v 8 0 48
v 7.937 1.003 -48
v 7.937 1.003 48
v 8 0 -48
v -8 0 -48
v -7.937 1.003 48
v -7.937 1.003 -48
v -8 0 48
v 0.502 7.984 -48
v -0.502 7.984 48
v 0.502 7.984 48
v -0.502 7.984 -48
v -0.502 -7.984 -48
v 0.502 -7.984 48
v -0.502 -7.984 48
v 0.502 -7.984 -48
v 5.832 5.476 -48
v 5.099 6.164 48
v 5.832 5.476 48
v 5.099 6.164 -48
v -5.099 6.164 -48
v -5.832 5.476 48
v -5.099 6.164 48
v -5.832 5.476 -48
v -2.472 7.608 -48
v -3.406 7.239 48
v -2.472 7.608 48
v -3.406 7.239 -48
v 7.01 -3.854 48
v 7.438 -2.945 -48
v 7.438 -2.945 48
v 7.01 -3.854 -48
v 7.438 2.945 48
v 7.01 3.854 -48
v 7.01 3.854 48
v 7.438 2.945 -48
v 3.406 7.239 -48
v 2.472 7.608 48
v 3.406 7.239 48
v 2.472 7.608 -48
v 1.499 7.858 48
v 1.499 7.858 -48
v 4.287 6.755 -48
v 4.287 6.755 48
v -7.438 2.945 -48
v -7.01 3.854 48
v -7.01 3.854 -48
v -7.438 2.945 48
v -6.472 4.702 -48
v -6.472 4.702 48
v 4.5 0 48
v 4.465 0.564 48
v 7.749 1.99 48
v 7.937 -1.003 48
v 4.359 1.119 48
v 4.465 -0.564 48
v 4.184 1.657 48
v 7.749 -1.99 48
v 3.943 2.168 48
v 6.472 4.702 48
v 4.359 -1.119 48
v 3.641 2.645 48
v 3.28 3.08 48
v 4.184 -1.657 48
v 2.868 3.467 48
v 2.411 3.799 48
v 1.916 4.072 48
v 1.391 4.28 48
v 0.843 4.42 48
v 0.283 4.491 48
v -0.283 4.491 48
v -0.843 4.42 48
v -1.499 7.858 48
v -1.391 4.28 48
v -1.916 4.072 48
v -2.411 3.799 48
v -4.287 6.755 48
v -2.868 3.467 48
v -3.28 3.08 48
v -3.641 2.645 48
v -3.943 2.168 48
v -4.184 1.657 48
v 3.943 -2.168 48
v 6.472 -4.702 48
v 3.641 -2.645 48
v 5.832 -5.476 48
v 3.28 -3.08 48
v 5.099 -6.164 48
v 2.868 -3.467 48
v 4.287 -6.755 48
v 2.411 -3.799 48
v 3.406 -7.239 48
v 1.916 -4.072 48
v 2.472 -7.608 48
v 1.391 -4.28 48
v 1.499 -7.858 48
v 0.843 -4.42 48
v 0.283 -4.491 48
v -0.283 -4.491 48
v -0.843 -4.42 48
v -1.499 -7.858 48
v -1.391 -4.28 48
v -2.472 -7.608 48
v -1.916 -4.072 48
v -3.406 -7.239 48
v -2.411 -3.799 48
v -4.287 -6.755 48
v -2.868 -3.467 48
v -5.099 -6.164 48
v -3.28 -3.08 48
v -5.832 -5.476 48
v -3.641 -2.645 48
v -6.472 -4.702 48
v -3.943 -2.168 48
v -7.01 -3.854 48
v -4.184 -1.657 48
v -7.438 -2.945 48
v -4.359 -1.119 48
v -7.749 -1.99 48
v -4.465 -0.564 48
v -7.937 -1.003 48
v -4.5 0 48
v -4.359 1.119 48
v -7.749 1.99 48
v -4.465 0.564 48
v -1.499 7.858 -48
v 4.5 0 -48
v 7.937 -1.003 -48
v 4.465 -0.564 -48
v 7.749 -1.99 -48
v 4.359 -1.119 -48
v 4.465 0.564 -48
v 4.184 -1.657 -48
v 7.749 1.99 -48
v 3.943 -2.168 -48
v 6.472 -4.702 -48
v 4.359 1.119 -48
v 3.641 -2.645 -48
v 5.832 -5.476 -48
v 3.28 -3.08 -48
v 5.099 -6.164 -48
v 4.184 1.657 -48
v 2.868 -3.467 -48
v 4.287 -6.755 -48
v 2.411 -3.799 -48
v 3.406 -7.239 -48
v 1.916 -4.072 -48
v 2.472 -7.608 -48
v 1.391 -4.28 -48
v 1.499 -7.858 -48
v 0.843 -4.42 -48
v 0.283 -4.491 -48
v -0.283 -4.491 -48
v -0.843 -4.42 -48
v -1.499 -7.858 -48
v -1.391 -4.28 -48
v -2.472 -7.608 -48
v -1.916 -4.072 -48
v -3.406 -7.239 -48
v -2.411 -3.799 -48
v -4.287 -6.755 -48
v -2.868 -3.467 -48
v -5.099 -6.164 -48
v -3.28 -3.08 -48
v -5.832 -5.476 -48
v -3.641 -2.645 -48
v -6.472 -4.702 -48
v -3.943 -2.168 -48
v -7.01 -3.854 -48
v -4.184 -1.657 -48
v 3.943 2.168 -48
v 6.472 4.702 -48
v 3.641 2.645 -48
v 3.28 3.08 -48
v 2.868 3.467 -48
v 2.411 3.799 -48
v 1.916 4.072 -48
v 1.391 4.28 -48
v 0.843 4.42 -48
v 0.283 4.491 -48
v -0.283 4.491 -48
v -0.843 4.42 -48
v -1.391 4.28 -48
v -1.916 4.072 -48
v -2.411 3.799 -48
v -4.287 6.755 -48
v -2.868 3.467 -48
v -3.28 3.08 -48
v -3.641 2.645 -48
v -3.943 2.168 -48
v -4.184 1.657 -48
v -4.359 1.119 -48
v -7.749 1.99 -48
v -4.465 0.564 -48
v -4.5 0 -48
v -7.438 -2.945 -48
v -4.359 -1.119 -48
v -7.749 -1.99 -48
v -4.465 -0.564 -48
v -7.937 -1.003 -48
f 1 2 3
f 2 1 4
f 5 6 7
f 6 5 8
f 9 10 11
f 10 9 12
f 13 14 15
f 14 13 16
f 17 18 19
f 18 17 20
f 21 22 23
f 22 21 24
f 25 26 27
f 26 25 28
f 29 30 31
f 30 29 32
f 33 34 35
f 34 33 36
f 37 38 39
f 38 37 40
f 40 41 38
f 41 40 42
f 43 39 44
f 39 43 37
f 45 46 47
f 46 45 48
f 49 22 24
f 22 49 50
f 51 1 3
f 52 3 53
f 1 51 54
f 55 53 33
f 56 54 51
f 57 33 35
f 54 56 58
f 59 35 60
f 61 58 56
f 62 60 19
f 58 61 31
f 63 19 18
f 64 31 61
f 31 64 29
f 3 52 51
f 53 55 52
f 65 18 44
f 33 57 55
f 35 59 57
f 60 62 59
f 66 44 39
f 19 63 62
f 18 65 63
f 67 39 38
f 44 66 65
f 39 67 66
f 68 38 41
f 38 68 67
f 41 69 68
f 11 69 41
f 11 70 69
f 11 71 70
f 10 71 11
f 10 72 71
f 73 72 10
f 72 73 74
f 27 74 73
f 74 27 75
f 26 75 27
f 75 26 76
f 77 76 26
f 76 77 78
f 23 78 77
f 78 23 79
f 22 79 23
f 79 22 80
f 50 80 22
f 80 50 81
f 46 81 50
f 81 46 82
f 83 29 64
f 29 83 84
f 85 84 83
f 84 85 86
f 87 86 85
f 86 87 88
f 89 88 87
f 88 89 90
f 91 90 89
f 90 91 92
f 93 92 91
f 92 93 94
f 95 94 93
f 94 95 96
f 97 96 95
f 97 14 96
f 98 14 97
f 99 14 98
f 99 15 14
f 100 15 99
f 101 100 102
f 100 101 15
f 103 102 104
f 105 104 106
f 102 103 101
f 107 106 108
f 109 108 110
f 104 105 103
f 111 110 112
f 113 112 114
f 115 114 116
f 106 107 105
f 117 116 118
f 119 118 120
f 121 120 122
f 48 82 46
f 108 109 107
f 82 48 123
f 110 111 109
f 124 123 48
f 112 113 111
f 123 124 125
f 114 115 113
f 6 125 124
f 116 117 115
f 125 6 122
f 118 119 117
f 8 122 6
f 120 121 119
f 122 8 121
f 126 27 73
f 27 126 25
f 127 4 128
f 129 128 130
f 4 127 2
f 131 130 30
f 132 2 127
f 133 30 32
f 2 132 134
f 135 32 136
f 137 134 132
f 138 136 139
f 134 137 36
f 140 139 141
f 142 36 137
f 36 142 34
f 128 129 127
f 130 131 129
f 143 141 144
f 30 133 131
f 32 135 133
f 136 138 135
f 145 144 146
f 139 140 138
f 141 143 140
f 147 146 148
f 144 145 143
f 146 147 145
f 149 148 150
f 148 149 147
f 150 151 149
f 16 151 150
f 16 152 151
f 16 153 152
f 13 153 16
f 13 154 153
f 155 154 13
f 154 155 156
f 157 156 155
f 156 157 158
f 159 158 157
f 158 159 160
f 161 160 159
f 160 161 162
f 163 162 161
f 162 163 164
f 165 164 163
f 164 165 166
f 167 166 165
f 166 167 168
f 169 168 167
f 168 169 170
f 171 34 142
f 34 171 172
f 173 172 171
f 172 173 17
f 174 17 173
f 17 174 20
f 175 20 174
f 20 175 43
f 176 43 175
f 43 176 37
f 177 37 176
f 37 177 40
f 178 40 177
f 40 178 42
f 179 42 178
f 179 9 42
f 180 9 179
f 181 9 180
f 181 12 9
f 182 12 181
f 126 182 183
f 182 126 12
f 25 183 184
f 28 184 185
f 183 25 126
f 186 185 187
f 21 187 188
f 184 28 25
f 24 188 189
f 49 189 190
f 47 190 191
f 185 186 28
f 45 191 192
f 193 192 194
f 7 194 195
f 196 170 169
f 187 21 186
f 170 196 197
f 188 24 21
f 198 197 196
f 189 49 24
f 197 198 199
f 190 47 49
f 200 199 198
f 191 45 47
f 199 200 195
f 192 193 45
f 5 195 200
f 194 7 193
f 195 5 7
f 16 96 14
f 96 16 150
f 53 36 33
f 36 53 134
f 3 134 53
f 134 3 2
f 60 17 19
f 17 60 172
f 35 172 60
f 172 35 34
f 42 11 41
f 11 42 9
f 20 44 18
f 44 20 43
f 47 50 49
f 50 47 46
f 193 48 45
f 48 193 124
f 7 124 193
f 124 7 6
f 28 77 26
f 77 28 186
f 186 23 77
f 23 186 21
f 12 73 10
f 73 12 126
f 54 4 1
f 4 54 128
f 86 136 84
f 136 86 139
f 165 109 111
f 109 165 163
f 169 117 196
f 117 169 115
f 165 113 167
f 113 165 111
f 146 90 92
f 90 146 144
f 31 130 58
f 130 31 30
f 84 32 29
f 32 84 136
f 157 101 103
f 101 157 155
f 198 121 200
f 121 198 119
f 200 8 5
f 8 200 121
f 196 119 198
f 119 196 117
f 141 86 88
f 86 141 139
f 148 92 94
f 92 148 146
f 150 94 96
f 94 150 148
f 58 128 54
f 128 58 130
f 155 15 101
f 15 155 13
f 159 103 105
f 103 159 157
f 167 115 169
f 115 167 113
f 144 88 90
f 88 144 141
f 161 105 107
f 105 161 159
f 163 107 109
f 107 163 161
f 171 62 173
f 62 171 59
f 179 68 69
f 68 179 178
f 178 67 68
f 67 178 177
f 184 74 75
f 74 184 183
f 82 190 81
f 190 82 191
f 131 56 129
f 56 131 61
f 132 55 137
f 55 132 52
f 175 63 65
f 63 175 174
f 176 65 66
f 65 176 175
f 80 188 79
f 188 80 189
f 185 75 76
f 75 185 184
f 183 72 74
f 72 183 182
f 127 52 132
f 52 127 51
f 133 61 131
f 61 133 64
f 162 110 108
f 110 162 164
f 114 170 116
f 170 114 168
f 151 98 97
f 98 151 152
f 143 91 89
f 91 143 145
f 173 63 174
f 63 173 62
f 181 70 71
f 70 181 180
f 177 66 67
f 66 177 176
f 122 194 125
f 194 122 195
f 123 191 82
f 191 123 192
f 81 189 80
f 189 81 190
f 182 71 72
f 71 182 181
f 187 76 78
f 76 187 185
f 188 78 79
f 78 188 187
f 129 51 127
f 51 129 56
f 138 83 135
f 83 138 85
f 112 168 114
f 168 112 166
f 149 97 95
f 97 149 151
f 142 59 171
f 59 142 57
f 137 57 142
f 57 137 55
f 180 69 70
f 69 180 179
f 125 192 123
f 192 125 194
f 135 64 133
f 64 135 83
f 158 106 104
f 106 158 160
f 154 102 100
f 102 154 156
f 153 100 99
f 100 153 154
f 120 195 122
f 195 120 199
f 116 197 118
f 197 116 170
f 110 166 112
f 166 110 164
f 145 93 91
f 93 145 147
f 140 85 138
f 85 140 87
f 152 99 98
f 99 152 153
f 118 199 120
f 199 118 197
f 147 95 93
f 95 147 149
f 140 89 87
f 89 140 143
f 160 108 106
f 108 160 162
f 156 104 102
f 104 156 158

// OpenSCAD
$fn = 50;


difference() {
	union() {
		translate(v = [0, 0, -48.0000000000]) {
			cylinder(h = 96, r = 8.0000000000);
		}
	}
	union() {
		translate(v = [0, 0, -100.0000000000]) {
			cylinder(h = 200, r = 4.5000000000);
		}
	}
}
